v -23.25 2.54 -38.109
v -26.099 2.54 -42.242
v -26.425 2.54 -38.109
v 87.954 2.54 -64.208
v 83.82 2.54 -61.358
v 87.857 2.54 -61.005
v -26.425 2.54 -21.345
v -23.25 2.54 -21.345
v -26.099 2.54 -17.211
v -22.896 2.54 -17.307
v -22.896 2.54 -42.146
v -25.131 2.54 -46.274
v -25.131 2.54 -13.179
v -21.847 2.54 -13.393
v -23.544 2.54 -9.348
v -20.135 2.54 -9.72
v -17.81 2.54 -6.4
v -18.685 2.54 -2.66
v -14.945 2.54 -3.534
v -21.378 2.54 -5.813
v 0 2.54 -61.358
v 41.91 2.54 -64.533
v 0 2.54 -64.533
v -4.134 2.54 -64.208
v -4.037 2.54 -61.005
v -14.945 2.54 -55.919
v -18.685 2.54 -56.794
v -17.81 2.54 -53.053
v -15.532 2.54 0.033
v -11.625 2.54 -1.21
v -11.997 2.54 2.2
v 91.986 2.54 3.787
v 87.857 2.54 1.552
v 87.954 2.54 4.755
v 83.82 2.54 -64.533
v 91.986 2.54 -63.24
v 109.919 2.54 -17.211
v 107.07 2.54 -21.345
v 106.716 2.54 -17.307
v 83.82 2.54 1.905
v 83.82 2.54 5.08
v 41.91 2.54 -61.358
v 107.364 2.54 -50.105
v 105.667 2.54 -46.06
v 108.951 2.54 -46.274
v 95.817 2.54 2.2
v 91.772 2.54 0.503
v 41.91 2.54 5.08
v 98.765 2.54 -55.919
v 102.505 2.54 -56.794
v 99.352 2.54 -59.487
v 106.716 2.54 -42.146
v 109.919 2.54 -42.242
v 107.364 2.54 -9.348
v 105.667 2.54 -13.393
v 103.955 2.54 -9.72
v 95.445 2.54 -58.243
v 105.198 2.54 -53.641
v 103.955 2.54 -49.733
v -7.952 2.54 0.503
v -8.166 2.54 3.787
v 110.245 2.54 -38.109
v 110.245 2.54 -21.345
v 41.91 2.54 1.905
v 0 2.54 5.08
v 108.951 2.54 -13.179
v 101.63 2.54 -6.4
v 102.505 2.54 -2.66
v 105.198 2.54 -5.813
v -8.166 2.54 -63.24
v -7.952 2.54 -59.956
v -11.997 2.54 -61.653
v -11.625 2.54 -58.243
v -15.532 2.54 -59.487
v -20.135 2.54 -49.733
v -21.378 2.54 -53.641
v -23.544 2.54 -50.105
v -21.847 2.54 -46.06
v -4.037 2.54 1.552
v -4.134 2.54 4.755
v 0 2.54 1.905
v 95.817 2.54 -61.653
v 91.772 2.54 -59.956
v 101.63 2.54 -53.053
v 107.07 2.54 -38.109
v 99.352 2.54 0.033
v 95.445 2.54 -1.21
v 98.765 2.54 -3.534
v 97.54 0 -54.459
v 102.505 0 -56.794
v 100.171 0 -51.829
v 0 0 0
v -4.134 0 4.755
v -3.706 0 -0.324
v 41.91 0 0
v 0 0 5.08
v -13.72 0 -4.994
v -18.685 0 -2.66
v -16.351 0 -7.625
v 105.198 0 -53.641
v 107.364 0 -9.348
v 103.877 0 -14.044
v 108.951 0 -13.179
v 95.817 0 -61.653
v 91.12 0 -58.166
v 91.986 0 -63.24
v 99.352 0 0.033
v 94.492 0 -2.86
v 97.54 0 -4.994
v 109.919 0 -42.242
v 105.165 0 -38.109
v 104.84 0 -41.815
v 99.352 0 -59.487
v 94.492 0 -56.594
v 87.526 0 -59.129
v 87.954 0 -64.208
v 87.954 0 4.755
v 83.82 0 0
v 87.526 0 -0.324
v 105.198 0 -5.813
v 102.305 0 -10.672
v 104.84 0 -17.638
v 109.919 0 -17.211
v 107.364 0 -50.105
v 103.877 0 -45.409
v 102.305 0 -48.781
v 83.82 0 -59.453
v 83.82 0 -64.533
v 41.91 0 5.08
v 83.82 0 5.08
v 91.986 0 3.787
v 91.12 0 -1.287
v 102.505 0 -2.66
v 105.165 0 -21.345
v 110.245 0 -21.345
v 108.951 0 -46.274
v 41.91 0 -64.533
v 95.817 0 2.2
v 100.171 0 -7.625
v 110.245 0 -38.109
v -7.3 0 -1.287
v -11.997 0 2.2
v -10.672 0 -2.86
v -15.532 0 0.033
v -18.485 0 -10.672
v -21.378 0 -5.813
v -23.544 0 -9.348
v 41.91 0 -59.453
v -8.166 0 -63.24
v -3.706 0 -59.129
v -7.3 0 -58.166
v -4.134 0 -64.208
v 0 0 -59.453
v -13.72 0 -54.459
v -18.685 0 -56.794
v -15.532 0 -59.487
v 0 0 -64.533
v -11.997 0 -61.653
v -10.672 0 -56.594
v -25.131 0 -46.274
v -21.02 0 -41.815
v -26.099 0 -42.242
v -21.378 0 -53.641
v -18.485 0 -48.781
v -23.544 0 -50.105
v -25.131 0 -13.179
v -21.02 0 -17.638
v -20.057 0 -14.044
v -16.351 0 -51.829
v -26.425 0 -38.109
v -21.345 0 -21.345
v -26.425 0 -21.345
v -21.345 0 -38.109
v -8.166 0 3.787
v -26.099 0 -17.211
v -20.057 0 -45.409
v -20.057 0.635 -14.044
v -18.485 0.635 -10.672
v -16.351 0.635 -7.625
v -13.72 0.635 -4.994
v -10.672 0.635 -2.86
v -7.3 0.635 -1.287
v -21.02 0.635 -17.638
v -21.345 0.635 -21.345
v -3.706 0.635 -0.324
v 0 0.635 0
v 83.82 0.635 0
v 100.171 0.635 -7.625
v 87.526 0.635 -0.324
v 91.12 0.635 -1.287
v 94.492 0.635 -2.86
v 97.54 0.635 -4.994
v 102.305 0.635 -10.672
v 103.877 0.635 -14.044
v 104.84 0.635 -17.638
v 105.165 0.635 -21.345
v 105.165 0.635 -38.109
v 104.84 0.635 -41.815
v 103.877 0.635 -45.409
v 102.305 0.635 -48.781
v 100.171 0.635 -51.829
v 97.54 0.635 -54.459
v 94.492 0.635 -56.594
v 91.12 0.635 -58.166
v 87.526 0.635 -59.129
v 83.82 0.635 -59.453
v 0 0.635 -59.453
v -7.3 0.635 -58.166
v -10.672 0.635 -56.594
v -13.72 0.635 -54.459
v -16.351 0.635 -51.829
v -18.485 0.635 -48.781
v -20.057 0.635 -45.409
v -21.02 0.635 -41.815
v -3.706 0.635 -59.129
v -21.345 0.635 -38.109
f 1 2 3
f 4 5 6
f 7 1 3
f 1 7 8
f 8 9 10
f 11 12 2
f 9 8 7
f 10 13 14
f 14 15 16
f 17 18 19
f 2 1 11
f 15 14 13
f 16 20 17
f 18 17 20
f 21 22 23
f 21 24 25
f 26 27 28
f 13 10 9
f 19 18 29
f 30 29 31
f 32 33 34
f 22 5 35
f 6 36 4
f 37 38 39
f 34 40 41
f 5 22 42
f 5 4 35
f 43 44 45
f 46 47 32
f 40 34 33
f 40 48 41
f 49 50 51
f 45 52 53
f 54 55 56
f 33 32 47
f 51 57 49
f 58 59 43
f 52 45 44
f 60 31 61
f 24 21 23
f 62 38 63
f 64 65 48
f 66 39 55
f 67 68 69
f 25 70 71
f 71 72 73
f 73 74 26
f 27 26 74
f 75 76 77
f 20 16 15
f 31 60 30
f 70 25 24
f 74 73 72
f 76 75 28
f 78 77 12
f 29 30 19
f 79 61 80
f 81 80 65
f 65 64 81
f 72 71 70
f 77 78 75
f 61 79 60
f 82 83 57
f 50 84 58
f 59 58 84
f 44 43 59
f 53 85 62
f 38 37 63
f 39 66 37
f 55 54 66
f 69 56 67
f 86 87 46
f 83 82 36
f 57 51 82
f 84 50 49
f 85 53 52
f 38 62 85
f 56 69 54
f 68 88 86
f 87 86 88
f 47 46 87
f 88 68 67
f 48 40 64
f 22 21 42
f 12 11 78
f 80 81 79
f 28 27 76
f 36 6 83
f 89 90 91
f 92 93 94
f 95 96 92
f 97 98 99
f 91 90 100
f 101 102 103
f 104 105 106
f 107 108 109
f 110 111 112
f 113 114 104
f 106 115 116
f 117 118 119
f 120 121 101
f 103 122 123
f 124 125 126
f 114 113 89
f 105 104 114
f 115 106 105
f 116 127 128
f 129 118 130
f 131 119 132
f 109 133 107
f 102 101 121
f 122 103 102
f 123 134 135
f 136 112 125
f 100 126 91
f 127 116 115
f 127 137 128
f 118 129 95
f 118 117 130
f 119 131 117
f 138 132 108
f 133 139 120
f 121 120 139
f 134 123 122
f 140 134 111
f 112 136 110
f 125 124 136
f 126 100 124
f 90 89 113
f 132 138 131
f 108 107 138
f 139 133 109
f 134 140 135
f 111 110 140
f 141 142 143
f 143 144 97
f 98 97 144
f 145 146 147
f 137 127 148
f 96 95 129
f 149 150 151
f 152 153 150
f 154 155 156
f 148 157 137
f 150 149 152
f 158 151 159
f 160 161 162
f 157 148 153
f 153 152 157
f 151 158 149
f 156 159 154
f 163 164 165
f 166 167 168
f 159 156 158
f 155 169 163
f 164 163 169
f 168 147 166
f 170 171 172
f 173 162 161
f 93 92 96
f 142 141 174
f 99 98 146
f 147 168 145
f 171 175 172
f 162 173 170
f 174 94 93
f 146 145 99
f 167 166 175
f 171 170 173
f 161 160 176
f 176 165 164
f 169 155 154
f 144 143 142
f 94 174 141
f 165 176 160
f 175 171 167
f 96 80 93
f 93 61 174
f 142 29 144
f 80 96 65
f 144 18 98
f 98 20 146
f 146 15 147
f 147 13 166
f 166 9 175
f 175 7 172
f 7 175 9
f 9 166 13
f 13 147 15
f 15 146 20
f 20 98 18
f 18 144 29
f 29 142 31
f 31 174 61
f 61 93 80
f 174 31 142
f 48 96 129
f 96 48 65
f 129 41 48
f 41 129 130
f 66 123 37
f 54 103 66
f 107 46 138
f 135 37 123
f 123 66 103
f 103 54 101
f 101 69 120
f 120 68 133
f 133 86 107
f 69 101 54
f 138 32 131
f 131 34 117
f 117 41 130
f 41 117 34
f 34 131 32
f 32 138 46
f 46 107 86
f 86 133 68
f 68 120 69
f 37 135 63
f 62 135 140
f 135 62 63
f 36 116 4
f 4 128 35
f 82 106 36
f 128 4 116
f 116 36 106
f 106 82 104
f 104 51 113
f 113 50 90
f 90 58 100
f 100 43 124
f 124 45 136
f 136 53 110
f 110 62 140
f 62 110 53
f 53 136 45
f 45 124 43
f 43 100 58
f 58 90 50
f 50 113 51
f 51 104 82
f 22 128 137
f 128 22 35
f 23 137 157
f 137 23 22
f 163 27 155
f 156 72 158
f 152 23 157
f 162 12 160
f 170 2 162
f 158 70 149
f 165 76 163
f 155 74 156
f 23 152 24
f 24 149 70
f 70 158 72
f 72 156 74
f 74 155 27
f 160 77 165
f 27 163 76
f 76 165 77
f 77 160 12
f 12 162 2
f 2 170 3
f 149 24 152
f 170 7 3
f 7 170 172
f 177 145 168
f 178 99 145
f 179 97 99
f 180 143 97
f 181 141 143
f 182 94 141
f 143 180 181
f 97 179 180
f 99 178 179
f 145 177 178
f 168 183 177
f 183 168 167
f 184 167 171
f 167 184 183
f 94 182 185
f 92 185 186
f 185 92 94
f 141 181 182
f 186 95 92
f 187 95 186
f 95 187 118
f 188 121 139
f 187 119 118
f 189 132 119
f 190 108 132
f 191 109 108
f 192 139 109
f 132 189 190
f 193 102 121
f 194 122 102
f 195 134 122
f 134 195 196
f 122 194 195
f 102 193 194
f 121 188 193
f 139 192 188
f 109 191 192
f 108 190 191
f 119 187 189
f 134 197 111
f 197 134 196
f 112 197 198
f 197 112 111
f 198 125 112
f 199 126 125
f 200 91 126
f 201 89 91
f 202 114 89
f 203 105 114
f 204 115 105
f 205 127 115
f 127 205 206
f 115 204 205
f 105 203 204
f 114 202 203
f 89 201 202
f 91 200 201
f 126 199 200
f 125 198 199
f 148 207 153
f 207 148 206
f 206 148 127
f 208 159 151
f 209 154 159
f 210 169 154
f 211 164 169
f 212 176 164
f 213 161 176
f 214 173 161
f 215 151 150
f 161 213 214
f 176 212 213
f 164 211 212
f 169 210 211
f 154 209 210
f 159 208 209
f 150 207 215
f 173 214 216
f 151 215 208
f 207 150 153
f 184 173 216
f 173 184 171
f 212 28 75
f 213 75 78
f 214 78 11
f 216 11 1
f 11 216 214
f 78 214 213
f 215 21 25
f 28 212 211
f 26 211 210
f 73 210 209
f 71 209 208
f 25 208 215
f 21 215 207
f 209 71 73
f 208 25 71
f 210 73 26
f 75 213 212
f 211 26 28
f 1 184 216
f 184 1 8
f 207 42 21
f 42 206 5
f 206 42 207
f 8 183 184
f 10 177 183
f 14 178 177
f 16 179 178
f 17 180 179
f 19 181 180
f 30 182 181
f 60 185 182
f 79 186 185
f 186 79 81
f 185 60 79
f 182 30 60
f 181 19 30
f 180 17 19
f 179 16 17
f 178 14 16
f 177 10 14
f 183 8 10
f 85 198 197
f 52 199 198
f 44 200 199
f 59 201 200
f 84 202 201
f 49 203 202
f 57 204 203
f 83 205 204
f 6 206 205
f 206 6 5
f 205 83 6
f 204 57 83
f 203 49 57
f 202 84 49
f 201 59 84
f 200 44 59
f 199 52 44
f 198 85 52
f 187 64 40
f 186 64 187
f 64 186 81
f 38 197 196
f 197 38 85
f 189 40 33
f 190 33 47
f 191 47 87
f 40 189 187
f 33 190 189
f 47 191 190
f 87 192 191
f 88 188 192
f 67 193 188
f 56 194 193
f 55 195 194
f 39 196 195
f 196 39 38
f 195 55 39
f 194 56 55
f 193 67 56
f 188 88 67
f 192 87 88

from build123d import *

# Parameters (mm, degrees)
BOSS_EXTRUDE1_DEPTH = 2.54
CHAMFER1_SIZE       = 1.905


with BuildPart() as part:
    # Sketch1 → Boss-Extrude1 (new body)
    with BuildSketch(Plane(origin=(0, 0, 0), x_dir=(1, 0, 0), z_dir=(0, 1, 0))):
        with BuildLine():
            Line((0, -5.08), (83.82, -5.08))
            ThreePointArc((83.82, -5.08), (102.505005172, 2.659582555), (110.244587728, 21.344587728))
            Line((110.244587728, 21.344587728), (110.244587728, 38.108587728))
            ThreePointArc((110.244587728, 38.108587728), (102.505005172, 56.7935929), (83.82, 64.533175456))
            Line((83.82, 64.533175456), (0, 64.533175456))
            ThreePointArc((0, 64.533175456), (-18.685005172, 56.7935929), (-26.424587728, 38.108587728))
            Line((-26.424587728, 38.108587728), (-26.424587728, 21.344587728))
            ThreePointArc((-26.424587728, 21.344587728), (-18.685005172, 2.659582555), (0, -5.08))
        make_face()
        with BuildLine():
            Line((0, 0), (83.82, 0))
            ThreePointArc((83.82, 0), (98.912902724, 6.251685004), (105.164587728, 21.344587728))
            Line((105.164587728, 21.344587728), (105.164587728, 38.108587728))
            ThreePointArc((105.164587728, 38.108587728), (98.912902724, 53.201490452), (83.82, 59.453175456))
            Line((83.82, 59.453175456), (0, 59.453175456))
            ThreePointArc((0, 59.453175456), (-15.092902724, 53.201490452), (-21.344587728, 38.108587728))
            Line((-21.344587728, 38.108587728), (-21.344587728, 21.344587728))
            ThreePointArc((-21.344587728, 21.344587728), (-15.092902724, 6.251685004), (0, 0))
        make_face(mode=Mode.SUBTRACT)
    extrude(amount=BOSS_EXTRUDE1_DEPTH)

    # Chamfer1
    chamfer1_edges = [part.edges().sort_by_distance(p)[0] for p in [
        (-15.092902724, 2.54, -6.251685004),
        (41.91, 2.54, 0),
        (98.912902724, 2.54, -6.251685004),
        (105.164587728, 2.54, -29.726587728),
        (98.912902724, 2.54, -53.201490452),
        (41.91, 2.54, -59.453175456),
        (-15.092902724, 2.54, -53.201490452),
        (-21.344587728, 2.54, -29.726587728),
    ]]
    chamfer(chamfer1_edges, length=CHAMFER1_SIZE)


solid = part.part
